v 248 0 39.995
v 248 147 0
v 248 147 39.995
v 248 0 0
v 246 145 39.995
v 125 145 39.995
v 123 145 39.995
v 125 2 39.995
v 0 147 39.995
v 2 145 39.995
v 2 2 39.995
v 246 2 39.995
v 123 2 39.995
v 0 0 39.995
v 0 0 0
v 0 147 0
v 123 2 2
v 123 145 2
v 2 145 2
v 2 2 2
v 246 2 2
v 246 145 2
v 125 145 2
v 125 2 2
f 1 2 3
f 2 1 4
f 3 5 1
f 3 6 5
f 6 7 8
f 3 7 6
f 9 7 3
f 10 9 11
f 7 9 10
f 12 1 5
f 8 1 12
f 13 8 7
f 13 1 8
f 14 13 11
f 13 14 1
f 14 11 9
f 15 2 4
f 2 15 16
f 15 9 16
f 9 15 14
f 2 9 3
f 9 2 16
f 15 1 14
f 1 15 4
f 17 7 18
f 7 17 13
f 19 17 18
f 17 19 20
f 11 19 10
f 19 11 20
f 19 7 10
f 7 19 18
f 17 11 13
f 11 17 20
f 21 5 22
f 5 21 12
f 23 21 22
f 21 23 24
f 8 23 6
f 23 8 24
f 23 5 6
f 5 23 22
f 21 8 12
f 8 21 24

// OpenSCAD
height=40;
thickness=2;

difference() {

cube([248,147,height-0.005]);

  translate([2,2,2]) cube([121,143,height]); // crayons
  translate([125,2,2]) cube([121,143,height]); // stylo



}
